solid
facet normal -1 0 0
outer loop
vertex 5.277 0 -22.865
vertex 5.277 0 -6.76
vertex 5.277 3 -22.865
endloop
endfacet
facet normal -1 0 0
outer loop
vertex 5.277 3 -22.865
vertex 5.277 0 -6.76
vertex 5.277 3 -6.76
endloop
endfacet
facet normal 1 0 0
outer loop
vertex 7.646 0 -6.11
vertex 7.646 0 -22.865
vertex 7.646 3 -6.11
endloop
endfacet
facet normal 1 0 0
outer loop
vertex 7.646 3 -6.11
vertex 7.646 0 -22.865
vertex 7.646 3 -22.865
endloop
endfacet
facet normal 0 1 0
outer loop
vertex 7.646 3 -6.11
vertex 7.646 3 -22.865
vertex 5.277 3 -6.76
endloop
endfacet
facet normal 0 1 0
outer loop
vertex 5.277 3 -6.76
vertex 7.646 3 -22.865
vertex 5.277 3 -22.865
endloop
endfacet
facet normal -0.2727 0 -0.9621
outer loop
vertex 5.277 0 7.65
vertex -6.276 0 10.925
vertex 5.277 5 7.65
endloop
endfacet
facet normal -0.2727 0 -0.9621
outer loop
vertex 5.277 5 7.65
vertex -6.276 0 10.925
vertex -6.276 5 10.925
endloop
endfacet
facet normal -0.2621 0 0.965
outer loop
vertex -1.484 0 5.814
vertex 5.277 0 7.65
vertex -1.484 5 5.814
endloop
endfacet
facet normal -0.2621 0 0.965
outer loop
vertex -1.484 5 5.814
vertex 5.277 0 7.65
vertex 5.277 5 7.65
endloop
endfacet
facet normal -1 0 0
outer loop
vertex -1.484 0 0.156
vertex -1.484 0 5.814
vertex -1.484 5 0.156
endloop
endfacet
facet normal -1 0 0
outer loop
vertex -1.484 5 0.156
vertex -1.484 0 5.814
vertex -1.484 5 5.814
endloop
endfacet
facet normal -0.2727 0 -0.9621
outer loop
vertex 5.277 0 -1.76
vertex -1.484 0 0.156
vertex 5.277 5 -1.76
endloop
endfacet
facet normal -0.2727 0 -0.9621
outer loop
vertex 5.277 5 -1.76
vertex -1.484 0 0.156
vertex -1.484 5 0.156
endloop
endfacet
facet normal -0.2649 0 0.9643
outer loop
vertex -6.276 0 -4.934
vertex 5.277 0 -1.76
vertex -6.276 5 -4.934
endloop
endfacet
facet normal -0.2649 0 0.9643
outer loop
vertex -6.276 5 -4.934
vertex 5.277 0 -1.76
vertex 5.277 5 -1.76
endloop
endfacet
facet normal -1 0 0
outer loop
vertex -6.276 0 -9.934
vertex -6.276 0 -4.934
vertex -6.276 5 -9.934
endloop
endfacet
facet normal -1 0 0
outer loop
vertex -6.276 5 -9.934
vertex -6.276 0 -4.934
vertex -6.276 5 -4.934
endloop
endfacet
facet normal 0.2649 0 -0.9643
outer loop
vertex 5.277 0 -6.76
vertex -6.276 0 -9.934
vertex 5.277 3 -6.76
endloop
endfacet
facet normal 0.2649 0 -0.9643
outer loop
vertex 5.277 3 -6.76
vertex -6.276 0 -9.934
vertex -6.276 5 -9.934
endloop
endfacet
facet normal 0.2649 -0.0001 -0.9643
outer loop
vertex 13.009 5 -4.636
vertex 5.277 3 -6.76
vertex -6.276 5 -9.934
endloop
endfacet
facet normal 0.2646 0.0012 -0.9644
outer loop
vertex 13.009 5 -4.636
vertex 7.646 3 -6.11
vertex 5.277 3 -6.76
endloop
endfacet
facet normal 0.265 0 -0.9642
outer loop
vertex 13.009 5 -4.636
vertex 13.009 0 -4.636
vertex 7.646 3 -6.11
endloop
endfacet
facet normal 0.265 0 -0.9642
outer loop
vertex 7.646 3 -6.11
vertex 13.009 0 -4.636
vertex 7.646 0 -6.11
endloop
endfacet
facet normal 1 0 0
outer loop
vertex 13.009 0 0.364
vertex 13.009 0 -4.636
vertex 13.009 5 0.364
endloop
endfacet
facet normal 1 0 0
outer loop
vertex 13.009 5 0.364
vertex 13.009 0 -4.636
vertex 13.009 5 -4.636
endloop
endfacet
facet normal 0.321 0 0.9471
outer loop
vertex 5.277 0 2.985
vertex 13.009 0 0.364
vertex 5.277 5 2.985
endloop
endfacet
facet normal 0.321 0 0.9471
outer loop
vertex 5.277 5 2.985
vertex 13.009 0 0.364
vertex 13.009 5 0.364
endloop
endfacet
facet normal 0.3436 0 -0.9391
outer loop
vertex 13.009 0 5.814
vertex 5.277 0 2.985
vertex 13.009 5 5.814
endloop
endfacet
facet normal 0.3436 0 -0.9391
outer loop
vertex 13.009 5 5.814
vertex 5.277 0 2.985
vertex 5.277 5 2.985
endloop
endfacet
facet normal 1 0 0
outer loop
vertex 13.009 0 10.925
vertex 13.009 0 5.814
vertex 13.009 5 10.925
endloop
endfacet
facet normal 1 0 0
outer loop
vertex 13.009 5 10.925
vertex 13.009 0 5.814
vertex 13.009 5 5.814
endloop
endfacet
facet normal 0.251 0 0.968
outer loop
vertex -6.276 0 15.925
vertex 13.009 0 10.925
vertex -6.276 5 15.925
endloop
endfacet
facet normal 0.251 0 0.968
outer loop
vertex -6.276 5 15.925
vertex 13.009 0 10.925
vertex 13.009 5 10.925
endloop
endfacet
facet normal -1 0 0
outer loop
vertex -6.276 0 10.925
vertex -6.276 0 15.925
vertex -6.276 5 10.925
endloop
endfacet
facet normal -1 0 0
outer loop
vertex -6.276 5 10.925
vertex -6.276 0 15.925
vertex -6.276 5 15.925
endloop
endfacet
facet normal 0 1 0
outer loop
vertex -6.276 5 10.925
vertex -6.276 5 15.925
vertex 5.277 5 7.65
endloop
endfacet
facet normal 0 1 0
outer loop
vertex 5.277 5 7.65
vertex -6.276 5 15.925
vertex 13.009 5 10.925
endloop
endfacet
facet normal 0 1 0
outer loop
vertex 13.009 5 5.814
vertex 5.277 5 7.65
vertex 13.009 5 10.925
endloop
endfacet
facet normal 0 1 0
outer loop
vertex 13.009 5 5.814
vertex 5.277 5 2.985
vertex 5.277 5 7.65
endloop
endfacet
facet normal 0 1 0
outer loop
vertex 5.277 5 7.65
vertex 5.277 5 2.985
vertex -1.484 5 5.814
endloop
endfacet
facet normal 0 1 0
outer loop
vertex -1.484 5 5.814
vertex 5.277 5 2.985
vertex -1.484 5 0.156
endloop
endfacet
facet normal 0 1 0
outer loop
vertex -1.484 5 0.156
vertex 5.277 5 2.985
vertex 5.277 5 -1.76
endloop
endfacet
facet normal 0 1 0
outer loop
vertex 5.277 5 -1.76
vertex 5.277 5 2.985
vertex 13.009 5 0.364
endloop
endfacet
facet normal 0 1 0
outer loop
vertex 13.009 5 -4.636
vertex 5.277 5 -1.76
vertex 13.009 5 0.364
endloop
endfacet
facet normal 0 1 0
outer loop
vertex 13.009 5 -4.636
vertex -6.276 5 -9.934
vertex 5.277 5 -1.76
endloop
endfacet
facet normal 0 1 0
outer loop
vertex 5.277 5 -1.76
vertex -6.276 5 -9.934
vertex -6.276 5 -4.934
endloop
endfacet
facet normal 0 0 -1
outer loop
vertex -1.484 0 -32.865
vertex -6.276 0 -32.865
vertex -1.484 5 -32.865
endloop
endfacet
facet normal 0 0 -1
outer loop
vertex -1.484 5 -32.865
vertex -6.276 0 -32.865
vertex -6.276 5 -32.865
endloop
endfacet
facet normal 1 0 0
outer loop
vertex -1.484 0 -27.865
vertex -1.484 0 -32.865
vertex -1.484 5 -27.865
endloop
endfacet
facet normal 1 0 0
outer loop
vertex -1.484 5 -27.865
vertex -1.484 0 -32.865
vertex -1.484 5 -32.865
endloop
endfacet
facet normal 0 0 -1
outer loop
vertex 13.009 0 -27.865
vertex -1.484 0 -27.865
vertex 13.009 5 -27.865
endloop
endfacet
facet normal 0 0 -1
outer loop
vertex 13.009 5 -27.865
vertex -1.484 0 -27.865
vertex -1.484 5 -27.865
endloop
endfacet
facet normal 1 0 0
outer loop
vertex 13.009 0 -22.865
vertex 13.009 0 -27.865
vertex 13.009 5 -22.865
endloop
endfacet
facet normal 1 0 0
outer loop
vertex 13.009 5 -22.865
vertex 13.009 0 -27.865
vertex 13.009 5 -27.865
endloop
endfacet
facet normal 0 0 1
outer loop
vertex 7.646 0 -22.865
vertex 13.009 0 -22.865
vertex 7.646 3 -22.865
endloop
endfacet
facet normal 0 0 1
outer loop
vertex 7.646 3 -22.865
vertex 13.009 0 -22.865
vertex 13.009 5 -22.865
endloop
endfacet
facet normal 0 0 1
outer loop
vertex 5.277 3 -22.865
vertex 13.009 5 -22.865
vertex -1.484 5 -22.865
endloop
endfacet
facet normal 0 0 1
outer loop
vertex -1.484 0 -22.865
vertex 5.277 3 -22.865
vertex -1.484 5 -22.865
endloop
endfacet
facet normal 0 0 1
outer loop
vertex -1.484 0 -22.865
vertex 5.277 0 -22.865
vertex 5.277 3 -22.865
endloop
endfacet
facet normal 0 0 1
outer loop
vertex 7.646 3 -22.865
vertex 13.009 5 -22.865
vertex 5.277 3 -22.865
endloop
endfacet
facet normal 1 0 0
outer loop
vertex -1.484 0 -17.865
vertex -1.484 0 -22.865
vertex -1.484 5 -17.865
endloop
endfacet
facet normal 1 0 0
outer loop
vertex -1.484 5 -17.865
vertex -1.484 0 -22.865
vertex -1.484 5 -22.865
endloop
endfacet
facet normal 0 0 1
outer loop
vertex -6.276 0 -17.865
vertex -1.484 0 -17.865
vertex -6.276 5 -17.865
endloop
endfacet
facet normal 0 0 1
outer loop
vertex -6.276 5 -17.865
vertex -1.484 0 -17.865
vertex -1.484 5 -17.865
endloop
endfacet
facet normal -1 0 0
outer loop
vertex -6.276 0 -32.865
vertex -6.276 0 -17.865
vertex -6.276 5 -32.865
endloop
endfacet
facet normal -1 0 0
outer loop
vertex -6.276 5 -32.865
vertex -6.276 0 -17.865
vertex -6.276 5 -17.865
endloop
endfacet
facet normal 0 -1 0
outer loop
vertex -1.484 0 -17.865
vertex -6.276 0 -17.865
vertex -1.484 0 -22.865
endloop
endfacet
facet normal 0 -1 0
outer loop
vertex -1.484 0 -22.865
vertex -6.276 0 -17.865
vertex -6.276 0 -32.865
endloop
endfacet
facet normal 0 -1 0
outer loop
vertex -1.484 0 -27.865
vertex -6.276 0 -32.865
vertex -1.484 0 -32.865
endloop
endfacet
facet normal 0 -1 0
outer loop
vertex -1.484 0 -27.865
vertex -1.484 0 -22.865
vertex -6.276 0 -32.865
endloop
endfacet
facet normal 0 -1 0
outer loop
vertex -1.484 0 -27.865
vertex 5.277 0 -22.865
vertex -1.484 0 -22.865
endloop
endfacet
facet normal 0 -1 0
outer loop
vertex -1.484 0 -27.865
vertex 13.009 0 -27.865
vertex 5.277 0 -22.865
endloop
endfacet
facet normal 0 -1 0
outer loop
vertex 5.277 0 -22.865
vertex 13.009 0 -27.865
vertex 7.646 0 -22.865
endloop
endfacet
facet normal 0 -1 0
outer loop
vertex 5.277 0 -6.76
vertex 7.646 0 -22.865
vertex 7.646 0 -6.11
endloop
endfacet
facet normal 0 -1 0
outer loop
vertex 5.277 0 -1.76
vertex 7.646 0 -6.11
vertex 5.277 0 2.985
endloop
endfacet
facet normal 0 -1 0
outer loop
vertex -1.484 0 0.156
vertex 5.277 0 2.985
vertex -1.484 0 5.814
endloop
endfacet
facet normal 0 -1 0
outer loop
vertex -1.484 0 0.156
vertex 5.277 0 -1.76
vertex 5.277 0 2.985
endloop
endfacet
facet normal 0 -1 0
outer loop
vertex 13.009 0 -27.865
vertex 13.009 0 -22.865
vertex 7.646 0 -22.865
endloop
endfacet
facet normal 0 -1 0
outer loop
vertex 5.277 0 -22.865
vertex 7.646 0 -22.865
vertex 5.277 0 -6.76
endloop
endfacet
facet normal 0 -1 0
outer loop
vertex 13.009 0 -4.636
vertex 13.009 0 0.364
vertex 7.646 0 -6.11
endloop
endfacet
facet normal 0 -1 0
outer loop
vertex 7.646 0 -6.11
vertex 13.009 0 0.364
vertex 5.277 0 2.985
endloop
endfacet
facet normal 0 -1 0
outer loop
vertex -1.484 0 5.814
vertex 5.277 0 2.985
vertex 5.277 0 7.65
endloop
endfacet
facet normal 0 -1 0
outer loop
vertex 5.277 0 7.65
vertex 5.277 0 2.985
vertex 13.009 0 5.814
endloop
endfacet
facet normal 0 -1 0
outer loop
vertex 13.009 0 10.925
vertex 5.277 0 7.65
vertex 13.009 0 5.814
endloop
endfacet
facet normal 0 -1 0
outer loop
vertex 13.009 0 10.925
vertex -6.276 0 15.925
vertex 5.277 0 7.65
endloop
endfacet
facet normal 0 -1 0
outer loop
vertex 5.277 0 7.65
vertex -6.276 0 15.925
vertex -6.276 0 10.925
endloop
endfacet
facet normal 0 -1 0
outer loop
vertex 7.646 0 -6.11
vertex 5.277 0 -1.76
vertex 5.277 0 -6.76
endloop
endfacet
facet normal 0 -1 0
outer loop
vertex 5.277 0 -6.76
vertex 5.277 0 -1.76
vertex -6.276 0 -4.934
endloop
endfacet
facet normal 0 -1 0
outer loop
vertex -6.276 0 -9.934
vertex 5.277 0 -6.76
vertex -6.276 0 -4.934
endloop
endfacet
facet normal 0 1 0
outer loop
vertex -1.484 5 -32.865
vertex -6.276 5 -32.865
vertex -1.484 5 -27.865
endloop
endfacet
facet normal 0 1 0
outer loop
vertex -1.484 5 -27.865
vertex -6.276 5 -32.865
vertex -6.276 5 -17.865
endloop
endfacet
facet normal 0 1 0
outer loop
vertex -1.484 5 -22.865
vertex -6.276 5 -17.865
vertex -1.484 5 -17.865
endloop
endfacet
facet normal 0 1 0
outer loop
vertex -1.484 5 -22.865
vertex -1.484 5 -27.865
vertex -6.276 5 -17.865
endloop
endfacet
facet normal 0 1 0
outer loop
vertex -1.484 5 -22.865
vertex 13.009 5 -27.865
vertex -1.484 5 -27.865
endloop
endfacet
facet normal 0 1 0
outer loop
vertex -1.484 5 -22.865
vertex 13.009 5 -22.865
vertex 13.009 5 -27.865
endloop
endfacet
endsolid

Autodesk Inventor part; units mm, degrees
ref_plane "YZ Plane" through (0, 0, 0) normal (1, 0, 0) x (0, 1, 0)
ref_plane "XZ Plane" through (0, 0, 0) normal (0, 1, 0) x (-1, 0, 0)
ref_plane "XY Plane" through (0, 0, 0) normal (0, 0, 1) x (1, 0, 0)
sketch "Sketch1" plane through (0, 0, 0) normal (0, 1, 0) x (-1, 0, 0)
  line L0 (6.2763, 15.9249) -> (6.2763, 10.9249)
  line L1 (6.2763, 10.9249) -> (-5.2771, 7.6502)
  line L2 (-5.2771, 7.6502) -> (1.4843, 5.8136)
  line L3 (1.4843, 5.8136) -> (1.4843, 0.1561)
  line L4 (1.4843, 0.1561) -> (-5.2771, -1.7603)
  line L5 (-5.2771, -1.7603) -> (6.2763, -4.934)
  line L6 (6.2763, -4.934) -> (6.2763, -9.934)
  line L7 (6.2763, -9.934) -> (-13.0093, -4.6363)
  line L8 (-13.0093, -4.6363) -> (-13.0093, 0.3637)
  line L9 (-13.0093, 0.3637) -> (-5.2771, 2.9849)
  line L10 (-5.2771, 2.9849) -> (-13.0093, 5.8136)
  line L11 (-13.0093, 5.8136) -> (-13.0093, 10.9249)
  line L12 (-13.0093, 10.9249) -> (6.2763, 15.9249)
  line L13 (6.2763, -17.865) -> (6.2763, -32.865)
  line L14 (6.2763, -32.865) -> (1.4843, -32.865)
  line L15 (1.4843, -32.865) -> (1.4843, -27.865)
  line L16 (1.4843, -27.865) -> (-13.0093, -27.865)
  line L17 (-13.0093, -27.865) -> (-13.0093, -22.865)
  line L18 (-13.0093, -22.865) -> (1.4843, -22.865)
  line L19 (1.4843, -22.865) -> (1.4843, -17.865)
  line L20 (1.4843, -17.865) -> (6.2763, -17.865)
  line L21 (-5.2771, -6.7603) -> (-5.2771, -22.865)
  line L22 (-7.6463, -22.865) -> (-7.6463, -6.1095)
  point P0 (0, 0)
extrude "Extrusion1" add sketch "Sketch1" along normal blind 5 contours L0 L1 L2 L3 L4 L5 L6 L7 L8 L9 L10 L11 L12 | L18 L19 L20 L13 L14 L15 L16 L17
extrude "Extrusion2" add sketch "Sketch1" along normal blind 3 contours L7 L21 L18 L22
properties part number "hw1-initials"
